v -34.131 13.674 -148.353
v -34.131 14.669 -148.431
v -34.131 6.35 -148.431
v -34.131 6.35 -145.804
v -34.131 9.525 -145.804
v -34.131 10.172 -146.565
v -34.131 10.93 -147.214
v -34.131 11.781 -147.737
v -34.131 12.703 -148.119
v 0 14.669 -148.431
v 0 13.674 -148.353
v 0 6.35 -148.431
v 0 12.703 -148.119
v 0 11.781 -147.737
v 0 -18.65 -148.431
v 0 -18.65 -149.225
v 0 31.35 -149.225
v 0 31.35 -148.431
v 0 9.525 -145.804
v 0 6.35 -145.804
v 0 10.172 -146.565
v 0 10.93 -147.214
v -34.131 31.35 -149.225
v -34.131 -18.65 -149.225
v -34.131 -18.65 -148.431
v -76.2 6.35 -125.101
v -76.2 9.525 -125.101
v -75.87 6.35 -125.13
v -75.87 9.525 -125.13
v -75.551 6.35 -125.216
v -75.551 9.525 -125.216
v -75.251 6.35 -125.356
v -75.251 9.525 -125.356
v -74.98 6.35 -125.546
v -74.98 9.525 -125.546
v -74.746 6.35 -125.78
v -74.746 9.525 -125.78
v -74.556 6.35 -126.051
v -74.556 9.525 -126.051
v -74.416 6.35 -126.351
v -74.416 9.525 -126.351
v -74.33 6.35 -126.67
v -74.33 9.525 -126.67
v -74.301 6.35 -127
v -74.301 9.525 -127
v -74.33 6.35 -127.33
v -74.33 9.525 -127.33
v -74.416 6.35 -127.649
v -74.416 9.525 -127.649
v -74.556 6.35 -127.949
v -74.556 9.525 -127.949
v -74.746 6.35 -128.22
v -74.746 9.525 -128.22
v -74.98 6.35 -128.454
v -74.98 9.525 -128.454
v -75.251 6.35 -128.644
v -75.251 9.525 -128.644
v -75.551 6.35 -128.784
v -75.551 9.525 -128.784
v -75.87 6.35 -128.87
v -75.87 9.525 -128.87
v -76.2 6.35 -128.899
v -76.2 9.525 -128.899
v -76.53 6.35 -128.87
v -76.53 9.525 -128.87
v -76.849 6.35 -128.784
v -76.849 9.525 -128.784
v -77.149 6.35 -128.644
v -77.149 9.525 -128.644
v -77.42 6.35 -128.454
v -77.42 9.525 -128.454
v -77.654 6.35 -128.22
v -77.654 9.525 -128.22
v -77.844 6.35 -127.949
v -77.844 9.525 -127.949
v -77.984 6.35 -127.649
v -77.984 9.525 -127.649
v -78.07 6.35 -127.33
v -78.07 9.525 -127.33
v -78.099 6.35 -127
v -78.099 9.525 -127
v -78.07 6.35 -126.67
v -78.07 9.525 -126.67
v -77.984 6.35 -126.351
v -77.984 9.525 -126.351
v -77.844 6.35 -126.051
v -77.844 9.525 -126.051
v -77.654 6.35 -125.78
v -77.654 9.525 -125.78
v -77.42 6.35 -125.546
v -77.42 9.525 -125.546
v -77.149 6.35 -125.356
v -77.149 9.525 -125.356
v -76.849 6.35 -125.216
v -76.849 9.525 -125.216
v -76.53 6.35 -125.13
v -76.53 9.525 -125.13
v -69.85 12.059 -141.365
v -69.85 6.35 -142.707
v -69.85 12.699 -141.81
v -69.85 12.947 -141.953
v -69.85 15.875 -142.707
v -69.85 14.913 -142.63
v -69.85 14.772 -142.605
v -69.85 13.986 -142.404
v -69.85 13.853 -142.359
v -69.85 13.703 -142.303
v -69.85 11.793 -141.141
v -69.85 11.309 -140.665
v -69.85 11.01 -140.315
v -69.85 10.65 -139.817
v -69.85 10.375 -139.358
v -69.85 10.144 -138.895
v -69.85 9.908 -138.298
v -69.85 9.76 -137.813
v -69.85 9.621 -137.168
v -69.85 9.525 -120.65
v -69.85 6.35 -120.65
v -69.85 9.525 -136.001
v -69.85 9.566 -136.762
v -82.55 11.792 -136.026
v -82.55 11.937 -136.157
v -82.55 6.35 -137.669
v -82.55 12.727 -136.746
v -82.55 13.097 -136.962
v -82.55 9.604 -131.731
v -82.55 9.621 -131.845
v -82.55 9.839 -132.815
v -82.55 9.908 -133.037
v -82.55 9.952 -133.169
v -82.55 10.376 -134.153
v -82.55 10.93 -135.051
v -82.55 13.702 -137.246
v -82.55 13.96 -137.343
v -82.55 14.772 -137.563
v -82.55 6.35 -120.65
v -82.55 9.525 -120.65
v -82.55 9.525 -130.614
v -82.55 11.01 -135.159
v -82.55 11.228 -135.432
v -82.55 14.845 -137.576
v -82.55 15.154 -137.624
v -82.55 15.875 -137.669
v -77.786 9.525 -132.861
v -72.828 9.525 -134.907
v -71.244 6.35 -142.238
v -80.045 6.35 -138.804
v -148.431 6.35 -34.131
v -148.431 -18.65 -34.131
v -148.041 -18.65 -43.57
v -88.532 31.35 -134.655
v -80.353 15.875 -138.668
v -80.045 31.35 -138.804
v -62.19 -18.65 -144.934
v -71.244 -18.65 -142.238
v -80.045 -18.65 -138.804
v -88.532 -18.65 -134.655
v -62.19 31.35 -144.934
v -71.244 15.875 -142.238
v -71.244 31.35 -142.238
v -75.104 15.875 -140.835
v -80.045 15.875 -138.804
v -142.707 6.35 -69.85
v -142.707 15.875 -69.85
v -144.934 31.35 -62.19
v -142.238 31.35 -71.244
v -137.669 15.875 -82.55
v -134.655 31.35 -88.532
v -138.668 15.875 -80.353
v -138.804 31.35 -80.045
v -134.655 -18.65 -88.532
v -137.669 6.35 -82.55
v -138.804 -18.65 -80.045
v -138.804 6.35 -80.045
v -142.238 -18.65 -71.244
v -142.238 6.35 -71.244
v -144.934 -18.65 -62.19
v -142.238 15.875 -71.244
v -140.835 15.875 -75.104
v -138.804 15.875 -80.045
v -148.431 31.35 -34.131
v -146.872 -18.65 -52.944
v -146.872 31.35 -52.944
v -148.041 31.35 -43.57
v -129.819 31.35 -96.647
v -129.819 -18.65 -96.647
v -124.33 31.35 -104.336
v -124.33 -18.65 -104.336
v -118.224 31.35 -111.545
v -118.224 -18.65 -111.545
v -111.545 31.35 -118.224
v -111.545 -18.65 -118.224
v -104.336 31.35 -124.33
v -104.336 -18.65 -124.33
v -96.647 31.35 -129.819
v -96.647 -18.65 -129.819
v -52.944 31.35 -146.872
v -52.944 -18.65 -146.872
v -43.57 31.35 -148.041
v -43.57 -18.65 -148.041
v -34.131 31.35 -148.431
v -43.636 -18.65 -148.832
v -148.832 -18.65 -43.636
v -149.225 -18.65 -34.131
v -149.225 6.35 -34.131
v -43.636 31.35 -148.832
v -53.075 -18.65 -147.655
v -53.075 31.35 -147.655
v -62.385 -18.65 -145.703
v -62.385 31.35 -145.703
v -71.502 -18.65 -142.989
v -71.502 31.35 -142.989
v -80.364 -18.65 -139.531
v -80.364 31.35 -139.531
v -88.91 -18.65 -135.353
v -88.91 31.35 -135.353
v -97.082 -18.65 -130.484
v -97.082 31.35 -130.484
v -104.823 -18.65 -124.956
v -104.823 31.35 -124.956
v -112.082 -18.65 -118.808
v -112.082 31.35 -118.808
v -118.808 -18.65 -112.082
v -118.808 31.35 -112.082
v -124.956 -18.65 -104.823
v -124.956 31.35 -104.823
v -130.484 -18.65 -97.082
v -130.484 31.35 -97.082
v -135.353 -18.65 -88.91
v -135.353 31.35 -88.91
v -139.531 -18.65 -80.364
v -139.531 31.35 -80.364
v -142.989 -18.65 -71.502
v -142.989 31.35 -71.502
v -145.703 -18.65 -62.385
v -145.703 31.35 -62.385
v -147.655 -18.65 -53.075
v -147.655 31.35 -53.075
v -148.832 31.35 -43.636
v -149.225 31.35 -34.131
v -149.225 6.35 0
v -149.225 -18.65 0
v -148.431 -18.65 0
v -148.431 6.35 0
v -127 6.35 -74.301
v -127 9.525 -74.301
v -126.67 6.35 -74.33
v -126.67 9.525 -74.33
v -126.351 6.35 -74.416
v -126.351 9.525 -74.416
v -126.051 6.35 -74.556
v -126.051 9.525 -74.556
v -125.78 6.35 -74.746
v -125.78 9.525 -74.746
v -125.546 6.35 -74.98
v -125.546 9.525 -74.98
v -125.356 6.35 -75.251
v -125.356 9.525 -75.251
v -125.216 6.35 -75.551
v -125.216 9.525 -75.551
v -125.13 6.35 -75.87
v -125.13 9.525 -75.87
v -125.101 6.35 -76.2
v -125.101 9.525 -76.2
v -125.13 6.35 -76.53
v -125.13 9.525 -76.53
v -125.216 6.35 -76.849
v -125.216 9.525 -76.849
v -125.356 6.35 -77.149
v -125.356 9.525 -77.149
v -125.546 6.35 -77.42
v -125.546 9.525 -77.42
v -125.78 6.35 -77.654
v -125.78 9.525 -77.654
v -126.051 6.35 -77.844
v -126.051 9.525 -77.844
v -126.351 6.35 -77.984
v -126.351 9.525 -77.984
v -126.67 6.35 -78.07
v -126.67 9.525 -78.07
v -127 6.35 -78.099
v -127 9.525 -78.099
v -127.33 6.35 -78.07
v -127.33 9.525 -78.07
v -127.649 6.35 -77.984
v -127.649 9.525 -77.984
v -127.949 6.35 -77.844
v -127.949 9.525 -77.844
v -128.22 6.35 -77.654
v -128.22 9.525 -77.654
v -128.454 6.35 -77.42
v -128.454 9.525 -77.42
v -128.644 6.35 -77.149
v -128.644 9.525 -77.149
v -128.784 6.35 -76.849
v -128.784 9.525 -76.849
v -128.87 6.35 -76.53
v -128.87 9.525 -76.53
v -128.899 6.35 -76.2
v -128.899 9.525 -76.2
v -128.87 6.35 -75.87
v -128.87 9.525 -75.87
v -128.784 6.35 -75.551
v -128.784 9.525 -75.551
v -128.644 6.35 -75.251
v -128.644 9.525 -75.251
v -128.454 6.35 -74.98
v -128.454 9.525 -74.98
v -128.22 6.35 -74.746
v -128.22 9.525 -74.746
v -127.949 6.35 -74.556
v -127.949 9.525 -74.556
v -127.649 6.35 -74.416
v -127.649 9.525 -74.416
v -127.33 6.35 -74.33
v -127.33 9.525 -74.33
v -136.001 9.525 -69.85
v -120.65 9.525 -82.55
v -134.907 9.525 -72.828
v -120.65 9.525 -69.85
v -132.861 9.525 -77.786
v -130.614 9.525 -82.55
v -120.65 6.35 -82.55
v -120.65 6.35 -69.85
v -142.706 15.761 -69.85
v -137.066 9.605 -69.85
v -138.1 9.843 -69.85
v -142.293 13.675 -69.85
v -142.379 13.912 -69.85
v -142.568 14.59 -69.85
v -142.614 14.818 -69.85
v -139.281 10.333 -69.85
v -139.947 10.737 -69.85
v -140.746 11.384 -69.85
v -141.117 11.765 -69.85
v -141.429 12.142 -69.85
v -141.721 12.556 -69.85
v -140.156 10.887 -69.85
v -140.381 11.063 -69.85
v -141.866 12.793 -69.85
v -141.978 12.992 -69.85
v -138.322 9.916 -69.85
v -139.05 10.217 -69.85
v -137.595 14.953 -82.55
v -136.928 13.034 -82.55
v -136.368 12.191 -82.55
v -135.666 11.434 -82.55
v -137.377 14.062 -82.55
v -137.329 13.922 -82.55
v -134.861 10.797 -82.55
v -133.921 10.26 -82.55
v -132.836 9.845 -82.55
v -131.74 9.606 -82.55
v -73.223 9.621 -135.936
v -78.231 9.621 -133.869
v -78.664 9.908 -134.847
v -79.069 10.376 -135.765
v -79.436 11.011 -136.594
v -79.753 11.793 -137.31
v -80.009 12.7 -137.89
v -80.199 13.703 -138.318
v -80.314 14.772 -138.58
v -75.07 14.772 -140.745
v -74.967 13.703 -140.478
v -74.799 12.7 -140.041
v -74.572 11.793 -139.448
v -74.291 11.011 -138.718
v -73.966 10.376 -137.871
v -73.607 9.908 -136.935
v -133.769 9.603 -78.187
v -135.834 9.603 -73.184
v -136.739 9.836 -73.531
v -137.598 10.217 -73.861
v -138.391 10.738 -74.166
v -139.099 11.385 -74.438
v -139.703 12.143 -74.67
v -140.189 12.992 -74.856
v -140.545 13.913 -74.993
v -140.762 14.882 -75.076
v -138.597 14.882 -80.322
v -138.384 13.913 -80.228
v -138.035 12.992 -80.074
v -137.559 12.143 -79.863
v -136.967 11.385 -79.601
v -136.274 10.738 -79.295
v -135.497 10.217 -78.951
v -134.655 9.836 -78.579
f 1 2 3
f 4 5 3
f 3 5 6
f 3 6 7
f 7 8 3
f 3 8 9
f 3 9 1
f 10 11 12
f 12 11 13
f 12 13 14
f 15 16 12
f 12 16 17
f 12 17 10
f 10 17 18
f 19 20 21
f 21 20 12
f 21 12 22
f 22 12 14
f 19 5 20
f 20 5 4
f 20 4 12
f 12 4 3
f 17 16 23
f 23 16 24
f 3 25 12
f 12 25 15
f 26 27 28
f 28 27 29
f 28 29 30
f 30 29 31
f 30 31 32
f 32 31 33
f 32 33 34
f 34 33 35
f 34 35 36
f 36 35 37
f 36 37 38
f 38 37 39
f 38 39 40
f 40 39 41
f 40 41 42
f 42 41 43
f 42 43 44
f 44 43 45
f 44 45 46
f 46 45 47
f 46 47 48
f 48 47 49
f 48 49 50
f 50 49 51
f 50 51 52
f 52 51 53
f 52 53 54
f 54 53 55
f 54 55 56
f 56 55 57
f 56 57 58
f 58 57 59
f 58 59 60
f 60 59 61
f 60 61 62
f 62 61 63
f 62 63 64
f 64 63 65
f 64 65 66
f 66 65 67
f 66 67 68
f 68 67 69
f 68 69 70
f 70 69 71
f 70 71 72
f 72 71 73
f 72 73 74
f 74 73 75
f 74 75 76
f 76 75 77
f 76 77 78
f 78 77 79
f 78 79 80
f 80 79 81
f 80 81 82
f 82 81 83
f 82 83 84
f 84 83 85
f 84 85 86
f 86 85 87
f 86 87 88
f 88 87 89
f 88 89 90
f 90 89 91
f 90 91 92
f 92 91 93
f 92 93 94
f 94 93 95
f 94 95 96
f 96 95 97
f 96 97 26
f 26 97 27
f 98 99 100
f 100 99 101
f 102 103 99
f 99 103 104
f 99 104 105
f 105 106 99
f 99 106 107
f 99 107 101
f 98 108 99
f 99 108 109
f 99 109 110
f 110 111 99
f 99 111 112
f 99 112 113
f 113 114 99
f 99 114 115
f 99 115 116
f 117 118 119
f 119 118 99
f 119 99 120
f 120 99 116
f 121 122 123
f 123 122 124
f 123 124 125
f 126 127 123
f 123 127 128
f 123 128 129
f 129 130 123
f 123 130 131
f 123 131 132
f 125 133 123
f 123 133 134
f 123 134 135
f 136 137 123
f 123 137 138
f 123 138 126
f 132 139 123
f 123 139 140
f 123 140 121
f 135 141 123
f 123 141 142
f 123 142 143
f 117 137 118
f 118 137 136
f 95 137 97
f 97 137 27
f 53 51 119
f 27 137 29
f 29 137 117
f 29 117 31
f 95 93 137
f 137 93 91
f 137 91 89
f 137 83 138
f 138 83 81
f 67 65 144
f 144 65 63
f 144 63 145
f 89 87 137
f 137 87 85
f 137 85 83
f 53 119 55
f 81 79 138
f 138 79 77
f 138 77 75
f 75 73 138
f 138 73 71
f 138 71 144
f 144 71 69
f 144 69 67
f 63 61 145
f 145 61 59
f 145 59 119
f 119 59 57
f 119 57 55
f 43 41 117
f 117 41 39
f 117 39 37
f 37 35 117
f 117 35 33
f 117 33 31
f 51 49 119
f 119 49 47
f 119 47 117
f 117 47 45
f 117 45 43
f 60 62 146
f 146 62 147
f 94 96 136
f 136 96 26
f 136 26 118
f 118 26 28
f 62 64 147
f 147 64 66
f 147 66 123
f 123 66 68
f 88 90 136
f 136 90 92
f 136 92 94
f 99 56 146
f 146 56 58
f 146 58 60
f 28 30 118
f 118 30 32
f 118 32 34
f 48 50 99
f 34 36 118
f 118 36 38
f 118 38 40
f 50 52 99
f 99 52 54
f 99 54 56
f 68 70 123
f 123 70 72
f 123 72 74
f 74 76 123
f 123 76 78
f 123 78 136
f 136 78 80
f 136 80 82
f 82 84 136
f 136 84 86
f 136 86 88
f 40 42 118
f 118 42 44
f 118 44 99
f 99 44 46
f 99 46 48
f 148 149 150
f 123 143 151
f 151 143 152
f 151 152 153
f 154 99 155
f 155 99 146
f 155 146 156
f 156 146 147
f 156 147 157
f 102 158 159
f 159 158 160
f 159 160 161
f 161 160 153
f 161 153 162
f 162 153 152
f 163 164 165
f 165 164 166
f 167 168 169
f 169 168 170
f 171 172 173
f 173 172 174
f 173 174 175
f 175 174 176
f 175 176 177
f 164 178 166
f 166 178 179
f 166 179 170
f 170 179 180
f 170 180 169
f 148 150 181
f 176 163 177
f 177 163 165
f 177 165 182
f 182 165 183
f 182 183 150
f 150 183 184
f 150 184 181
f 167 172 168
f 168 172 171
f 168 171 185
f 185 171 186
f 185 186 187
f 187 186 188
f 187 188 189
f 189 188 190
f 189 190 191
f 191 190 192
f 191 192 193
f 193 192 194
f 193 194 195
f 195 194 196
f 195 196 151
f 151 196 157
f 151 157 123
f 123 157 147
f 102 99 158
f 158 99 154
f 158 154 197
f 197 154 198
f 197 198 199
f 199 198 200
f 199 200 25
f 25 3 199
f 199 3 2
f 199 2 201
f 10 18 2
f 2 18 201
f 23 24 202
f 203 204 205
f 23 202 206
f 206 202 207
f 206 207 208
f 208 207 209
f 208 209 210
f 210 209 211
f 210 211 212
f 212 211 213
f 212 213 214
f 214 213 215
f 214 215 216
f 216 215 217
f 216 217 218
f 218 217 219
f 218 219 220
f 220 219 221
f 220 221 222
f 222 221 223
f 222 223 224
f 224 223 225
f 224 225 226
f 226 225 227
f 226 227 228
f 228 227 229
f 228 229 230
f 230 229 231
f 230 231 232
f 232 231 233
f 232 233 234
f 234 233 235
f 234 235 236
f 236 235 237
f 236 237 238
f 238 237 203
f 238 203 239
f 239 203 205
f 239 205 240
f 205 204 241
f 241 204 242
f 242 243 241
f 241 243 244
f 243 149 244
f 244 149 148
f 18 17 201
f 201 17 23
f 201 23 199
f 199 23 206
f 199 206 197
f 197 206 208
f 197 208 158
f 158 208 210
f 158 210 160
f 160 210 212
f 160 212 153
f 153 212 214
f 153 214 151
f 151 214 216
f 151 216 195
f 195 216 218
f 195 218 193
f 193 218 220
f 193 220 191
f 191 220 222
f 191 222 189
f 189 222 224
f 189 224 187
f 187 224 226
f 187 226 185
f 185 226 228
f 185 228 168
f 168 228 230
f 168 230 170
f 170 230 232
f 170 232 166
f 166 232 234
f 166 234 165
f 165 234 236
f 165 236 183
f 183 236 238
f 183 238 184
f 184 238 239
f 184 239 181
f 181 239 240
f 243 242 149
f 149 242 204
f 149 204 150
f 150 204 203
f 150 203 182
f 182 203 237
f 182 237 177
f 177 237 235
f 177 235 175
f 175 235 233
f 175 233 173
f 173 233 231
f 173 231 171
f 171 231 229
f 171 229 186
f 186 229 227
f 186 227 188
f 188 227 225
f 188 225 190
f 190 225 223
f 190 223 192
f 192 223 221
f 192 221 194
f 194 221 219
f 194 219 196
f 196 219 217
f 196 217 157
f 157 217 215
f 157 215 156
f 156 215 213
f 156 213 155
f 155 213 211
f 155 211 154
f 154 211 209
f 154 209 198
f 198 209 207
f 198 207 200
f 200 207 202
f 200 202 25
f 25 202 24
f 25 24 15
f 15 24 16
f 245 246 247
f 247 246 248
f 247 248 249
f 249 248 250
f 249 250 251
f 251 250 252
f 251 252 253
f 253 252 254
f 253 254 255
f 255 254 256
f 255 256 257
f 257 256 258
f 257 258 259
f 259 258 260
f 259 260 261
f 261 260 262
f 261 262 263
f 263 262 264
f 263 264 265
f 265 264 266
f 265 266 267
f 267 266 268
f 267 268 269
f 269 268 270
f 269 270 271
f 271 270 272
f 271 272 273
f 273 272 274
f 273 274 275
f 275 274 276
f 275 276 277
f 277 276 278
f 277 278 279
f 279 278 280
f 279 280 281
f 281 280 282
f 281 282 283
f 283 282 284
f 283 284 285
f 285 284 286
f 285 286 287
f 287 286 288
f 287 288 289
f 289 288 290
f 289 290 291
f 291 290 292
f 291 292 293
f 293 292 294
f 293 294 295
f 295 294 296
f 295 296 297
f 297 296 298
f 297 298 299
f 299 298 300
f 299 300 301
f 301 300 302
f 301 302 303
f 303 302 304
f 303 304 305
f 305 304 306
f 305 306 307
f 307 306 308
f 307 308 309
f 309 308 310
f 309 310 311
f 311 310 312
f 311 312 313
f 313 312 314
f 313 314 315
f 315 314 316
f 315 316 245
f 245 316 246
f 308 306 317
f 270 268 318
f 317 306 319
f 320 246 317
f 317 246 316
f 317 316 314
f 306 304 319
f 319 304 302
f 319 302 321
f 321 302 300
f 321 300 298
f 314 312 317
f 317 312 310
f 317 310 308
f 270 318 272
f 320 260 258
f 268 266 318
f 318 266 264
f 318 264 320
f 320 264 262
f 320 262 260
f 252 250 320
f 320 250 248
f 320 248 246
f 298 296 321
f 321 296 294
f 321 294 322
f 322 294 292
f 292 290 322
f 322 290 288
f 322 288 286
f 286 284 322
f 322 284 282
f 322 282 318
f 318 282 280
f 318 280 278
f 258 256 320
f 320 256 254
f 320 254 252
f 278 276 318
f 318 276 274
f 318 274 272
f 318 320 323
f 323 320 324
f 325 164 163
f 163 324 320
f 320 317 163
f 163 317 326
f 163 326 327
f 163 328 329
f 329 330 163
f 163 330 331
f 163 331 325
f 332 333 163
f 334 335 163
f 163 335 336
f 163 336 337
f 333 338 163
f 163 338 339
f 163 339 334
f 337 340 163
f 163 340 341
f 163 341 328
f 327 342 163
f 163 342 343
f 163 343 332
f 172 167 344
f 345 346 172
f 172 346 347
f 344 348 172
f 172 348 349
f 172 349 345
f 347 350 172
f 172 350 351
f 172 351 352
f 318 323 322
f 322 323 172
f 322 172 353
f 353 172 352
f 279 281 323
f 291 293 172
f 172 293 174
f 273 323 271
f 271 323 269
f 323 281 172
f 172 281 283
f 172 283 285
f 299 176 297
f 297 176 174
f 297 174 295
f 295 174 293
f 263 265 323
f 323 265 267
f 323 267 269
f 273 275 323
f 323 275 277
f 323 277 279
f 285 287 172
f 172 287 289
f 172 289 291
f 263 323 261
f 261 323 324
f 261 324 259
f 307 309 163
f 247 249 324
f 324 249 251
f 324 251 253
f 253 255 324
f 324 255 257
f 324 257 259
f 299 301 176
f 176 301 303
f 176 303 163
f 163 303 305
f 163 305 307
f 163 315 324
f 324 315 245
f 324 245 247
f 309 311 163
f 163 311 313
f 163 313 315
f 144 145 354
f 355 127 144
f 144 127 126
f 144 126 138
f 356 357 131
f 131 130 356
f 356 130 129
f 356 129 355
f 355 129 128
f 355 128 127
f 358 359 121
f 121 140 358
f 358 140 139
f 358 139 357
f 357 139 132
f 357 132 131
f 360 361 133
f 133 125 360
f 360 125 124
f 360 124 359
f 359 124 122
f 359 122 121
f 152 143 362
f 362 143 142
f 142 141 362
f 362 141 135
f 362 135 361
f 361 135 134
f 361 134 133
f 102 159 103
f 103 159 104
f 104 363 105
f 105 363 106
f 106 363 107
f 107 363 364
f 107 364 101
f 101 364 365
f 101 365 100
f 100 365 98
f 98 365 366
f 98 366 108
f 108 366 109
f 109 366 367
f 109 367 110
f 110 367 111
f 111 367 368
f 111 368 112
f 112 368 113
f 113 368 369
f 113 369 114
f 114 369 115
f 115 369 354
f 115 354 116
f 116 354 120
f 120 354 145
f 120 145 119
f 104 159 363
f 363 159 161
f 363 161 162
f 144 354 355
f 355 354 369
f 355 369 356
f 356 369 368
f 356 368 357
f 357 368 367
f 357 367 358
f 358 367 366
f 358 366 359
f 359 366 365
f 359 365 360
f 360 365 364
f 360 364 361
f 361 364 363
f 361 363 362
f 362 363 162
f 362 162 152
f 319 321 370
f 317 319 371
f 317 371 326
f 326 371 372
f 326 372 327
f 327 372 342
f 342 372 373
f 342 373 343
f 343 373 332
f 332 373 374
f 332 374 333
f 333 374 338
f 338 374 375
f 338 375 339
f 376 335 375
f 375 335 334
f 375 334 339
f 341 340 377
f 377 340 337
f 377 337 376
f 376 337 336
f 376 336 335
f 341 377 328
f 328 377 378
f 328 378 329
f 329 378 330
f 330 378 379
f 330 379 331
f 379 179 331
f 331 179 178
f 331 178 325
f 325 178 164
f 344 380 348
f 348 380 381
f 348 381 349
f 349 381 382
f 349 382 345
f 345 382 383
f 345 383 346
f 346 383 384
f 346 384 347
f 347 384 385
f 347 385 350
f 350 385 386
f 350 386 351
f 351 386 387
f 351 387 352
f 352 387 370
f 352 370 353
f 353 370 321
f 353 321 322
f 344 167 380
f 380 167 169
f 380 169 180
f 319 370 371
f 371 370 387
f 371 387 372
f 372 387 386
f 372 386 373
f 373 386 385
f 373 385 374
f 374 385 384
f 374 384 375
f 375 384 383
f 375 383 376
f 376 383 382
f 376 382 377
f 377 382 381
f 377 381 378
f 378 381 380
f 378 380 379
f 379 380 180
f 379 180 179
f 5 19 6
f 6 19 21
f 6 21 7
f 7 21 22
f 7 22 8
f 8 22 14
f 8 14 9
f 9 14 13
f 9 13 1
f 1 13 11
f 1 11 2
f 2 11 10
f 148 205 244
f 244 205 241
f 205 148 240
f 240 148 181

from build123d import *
from build123d.topology import SkipClean

# Parameters (mm, degrees)
BOSS_EXTRUDE1_DEPTH      = 6.35
CUT_EXTRUDE1_DEPTH       = 6.35
M4_CLEARANCE_HOLE1_D     = 4.5
F_6_CLEARANCE_HOLE1_D    = 3.7973
F_6_CLEARANCE_HOLE2_D    = 3.7973
SKETCH29_R               = 1.898650000000008
BOSS_EXTRUDE4_DEPTH      = 3.175
CUT_EXTRUDE9_DEPTH       = 211.00951038732748
BOSS_EXTRUDE5_DEPTH      = 25
BOSS_EXTRUDE5_DEPTH_BACK = 25
BOSS_EXTRUDE6_DEPTH      = 3.420518063
SKETCH32_W               = 34.13124999999999
SKETCH32_H               = 3.175
BOSS_EXTRUDE7_DEPTH      = 3.420518063
FILLET2_R                = 6.35
FILLET3_R                = 6.35
SKETCH33_W               = 62.65129797244943
SKETCH33_H               = 51.38023684891144
CUT_EXTRUDE10_DEPTH      = 211.97362412866636


with BuildPart() as part:
    # Sketch1 → Boss-Extrude1 (new body)
    with BuildSketch(Plane(origin=(0, 0, 0), x_dir=(1, 0, 0), z_dir=(0, 1, 0))):
        with BuildLine():
            Line((-34.13124999999996, -148.43124999999998), (34.131250000000016, -148.43124999999998))
            ThreePointArc((34.131250000000016, -148.43124999999998), (114.9535550896224, -114.95355508962234), (148.43124999999998, -34.13124999999996))
            Line((148.43124999999998, -34.13124999999996), (148.43124999999998, 34.131250000000016))
            ThreePointArc((148.43124999999998, 34.131250000000016), (114.9535550896224, 114.9535550896224), (34.131250000000016, 148.43125000000003))
            Line((34.131250000000016, 148.43125000000003), (-34.13124999999996, 148.43125000000003))
            ThreePointArc((-34.13124999999996, 148.43125000000003), (-114.95355508962231, 114.95355508962237), (-148.43124999999992, 34.131250000000016))
            Line((-148.43124999999992, 34.131250000000016), (-148.43124999999992, -34.13124999999996))
            ThreePointArc((-148.43124999999992, -34.13124999999996), (-114.95355508962234, -114.95355508962234), (-34.13124999999996, -148.43124999999998))
        make_face()
    extrude(amount=BOSS_EXTRUDE1_DEPTH)

    # Sketch4 → Cut-Extrude1 (cut)
    # profile 1 of 4: a face of its own
    with BuildSketch(Plane(origin=(0, 6.35, 0), x_dir=(1, 0, 0), z_dir=(0, 1, 0))):
        with BuildLine():
            ThreePointArc((-39.4480000000008, 145.80448193711538), (-49.893930566331434, 144.3300216659586), (-59.52363351317686, 140.0218527227403))
            ThreePointArc((-59.52363351317686, 140.0218527227403), (-63.81750000000949, 132.2535819370977), (-59.52363351317676, 124.48531115145514))
            ThreePointArc((-59.52363351317676, 124.48531115145514), (-49.89393056632884, 120.17714220824536), (-39.448000000000604, 118.70268193708908))
            Line((-39.448000000000604, 118.70268193708908), (39.44799999999939, 118.70268193708088))
            ThreePointArc((39.44799999999939, 118.70268193708088), (49.89393056633003, 120.17714220823765), (59.52363351317546, 124.48531115145597))
            ThreePointArc((59.52363351317546, 124.48531115145597), (63.817500000008096, 132.25358193709857), (59.523633513170694, 140.0218527227337))
            ThreePointArc((59.523633513170694, 140.0218527227337), (49.893930566325004, 144.3300216659425), (39.4479999999992, 145.80448193710717))
            Line((39.4479999999992, 145.80448193710717), (-39.4480000000008, 145.80448193711538))
        make_face()
        with BuildLine():
            ThreePointArc((39.447999999999375, 120.29018193708089), (49.454528647108134, 121.70261990502122), (58.67916380898574, 125.82956825808905))
            ThreePointArc((58.67916380898574, 125.82956825808905), (62.229999999999336, 132.25358193709857), (58.67916380898565, 138.67759561610805))
            ThreePointArc((58.67916380898565, 138.67759561610805), (49.45452864710313, 142.80454396915894), (39.447999999999205, 144.21698193711595))
            Line((39.447999999999205, 144.21698193711595), (-39.44800000000079, 144.21698193711538))
            ThreePointArc((-39.44800000000079, 144.21698193711538), (-49.454528647109534, 142.80454396917506), (-58.67916380898715, 138.67759561610723))
            ThreePointArc((-58.67916380898715, 138.67759561610723), (-62.23000000000073, 132.25358193709772), (-58.67916380898706, 125.82956825808822))
            ThreePointArc((-58.67916380898706, 125.82956825808822), (-49.454528647104546, 121.70261990503734), (-39.44800000000062, 120.29018193708033))
            Line((-39.44800000000062, 120.29018193708033), (39.447999999999375, 120.29018193708089))
        make_face(mode=Mode.SUBTRACT)
    # profile 2 of 4: a face of its own
    with BuildSketch(Plane(origin=(0, 6.35, 0), x_dir=(1, 0, 0), z_dir=(0, 1, 0))):
        with BuildLine():
            Line((-39.44800000000062, 120.29018193708033), (39.447999999999375, 120.29018193708089))
            ThreePointArc((39.447999999999375, 120.29018193708089), (49.454528647108134, 121.70261990502122), (58.67916380898574, 125.82956825808905))
            ThreePointArc((58.67916380898574, 125.82956825808905), (62.229999999999336, 132.25358193709857), (58.67916380898565, 138.67759561610805))
            ThreePointArc((58.67916380898565, 138.67759561610805), (49.45452864710313, 142.80454396915894), (39.447999999999205, 144.21698193711595))
            Line((39.447999999999205, 144.21698193711595), (-39.44800000000079, 144.21698193711538))
            ThreePointArc((-39.44800000000079, 144.21698193711538), (-49.454528647109534, 142.80454396917506), (-58.67916380898715, 138.67759561610723))
            ThreePointArc((-58.67916380898715, 138.67759561610723), (-62.23000000000073, 132.25358193709772), (-58.67916380898706, 125.82956825808822))
            ThreePointArc((-58.67916380898706, 125.82956825808822), (-49.454528647104546, 121.70261990503734), (-39.44800000000062, 120.29018193708033))
        make_face()
    # profile 3 of 4: a face of its own
    with BuildSketch(Plane(origin=(0, 6.35, 0), x_dir=(1, 0, 0), z_dir=(0, 1, 0))):
        with BuildLine():
            ThreePointArc((-59.5236335131764, -124.48531115145636), (-63.8175000000091, -132.25358193709894), (-59.52363351317174, -140.02185272273414))
            ThreePointArc((-59.52363351317174, -140.02185272273414), (-49.893930566326084, -144.33002166594298), (-39.44800000000029, -145.80448193711646))
            Line((-39.44800000000029, -145.80448193711646), (39.44799999999971, -145.80448193711646))
            ThreePointArc((39.44799999999971, -145.80448193711646), (49.89393056633035, -144.33002166595978), (59.52363351317579, -140.02185272274153))
            ThreePointArc((59.52363351317579, -140.02185272274153), (63.8175000000085, -132.25358193709894), (59.52363351317116, -124.48531115146376))
            ThreePointArc((59.52363351317116, -124.48531115146376), (49.89393056632551, -120.1771422082549), (39.44799999999971, -118.70268193709018))
            Line((39.44799999999971, -118.70268193709018), (-39.44800000000029, -118.70268193708142))
            ThreePointArc((-39.44800000000029, -118.70268193708142), (-49.89393056633094, -120.17714220823811), (-59.5236335131764, -124.48531115145636))
        make_face()
        with BuildLine():
            ThreePointArc((-58.679163808986694, -138.67759561610845), (-49.454528647104205, -142.8045439691594), (-39.44800000000029, -144.21698193711646))
            Line((-39.44800000000029, -144.21698193711646), (39.44799999999971, -144.21698193711646))
            ThreePointArc((39.44799999999971, -144.21698193711646), (49.45452864710846, -142.8045439691762), (58.679163808986104, -138.67759561610845))
            ThreePointArc((58.679163808986104, -138.67759561610845), (62.22999999999976, -132.25358193709894), (58.679163808986104, -125.82956825808944))
            ThreePointArc((58.679163808986104, -125.82956825808944), (49.45452864710362, -121.7026199050385), (39.44799999999971, -120.29018193708143))
            Line((39.44799999999971, -120.29018193708143), (-39.44800000000029, -120.29018193708143))
            ThreePointArc((-39.44800000000029, -120.29018193708143), (-49.45452864710904, -121.70261990502169), (-58.679163808986694, -125.82956825808944))
            ThreePointArc((-58.679163808986694, -125.82956825808944), (-62.230000000000345, -132.25358193709894), (-58.679163808986694, -138.67759561610845))
        make_face(mode=Mode.SUBTRACT)
    # profile 4 of 4: a face of its own
    with BuildSketch(Plane(origin=(0, 6.35, 0), x_dir=(1, 0, 0), z_dir=(0, 1, 0))):
        with BuildLine():
            ThreePointArc((-58.679163808986694, -125.82956825808944), (-62.230000000000345, -132.25358193709894), (-58.679163808986694, -138.67759561610845))
            ThreePointArc((-58.679163808986694, -138.67759561610845), (-49.454528647104205, -142.8045439691594), (-39.44800000000029, -144.21698193711646))
            Line((-39.44800000000029, -144.21698193711646), (39.44799999999971, -144.21698193711646))
            ThreePointArc((39.44799999999971, -144.21698193711646), (49.45452864710846, -142.8045439691762), (58.679163808986104, -138.67759561610845))
            ThreePointArc((58.679163808986104, -138.67759561610845), (62.22999999999976, -132.25358193709894), (58.679163808986104, -125.82956825808944))
            ThreePointArc((58.679163808986104, -125.82956825808944), (49.45452864710362, -121.7026199050385), (39.44799999999971, -120.29018193708143))
            Line((39.44799999999971, -120.29018193708143), (-39.44800000000029, -120.29018193708143))
            ThreePointArc((-39.44800000000029, -120.29018193708143), (-49.45452864710904, -121.70261990502169), (-58.679163808986694, -125.82956825808944))
        make_face()
    extrude(amount=-CUT_EXTRUDE1_DEPTH, mode=Mode.SUBTRACT)

    # M4 Clearance Hole1 (through all)
    with Locations(Plane(origin=(0, 6.35, 0), x_dir=(1, 0, 0), z_dir=(0, 1, 0))):
        with Locations((-16, -103.6875), (16, -103.6875), (22, -60.325), (-10, -60.325), (-10, 60.325), (22, 60.325), (16, 103.6875), (-16, 103.6875)):
            Hole(M4_CLEARANCE_HOLE1_D / 2)

    # #6 Clearance Hole1 (through all)
    with Locations(Plane(origin=(0, 6.35, 0), x_dir=(1, 0, 0), z_dir=(0, 1, 0))):
        with Locations((-101.6, -101.6), (-101.6, 101.6), (101.6, 101.6), (101.6, -101.6), (-127, -76.2), (-127, -50.8), (-127, 50.8), (-127, 76.2), (-101.6, 76.2), (-101.6, 50.8), (-101.6, 25.4), (-101.6, 0), (-101.6, -25.4), (-101.6, -50.8), (-101.6, -76.2), (-76.2, -101.6), (-50.8, -101.6), (-50.8, -76.2), (-76.2, -76.2), (-76.2, -50.8), (-50.8, -50.8), (-50.8, -25.4), (-76.2, -25.4), (-76.2, 0), (-50.8, 0), (-50.8, 25.4), (-76.2, 25.4), (-76.2, 50.8), (-50.8, 50.8), (-50.8, 76.2), (-76.2, 76.2), (-76.2, 101.6), (-50.8, 101.6), (50.8, -101.6), (76.2, -101.6), (101.6, -76.2), (127, -76.2), (127, -50.8), (101.6, -25.4), (101.6, -50.8), (76.2, -25.4), (76.2, -50.8), (76.2, -76.2), (50.8, -76.2), (50.8, -50.8), (50.8, -25.4), (50.8, 0), (76.2, 0), (101.6, 0), (101.6, 25.4), (101.6, 50.8), (101.6, 76.2), (127, 50.8), (127, 76.2), (76.2, 101.6), (50.8, 101.6), (50.8, 76.2), (76.2, 76.2), (76.2, 50.8), (76.2, 25.4), (50.8, 25.4), (50.8, 50.8), (0, 0), (-25.4, -25.4), (-25.4, 0), (-25.4, 25.4), (0, 25.4), (25.4, 25.4), (25.4, 0), (25.4, -25.4), (0, -25.4), (127, -25.4), (127, 0), (127, 25.4), (-127, -25.4), (-127, 0), (-127, 25.4)):
            Hole(F_6_CLEARANCE_HOLE1_D / 2)

    # #6 Clearance Hole2 (through all)
    with Locations(Plane(origin=(0, 6.35, 0), x_dir=(1, 0, 0), z_dir=(0, 1, 0))):
        with Locations((-76.2, -127), (76.2, -127), (76.2, 127), (-76.2, 127)):
            Hole(F_6_CLEARANCE_HOLE2_D / 2)

    # Sketch29 → Boss-Extrude4 (add)
    # profile 1 of 4: a face of its own
    with BuildSketch(Plane(origin=(0, 6.35, 0), x_dir=(1, 0, 0), z_dir=(0, 1, 0))):
        with BuildLine():
            Line((-69.85, 120.64999999999999), (-69.85, 142.70684992207043))
            ThreePointArc((-69.85, 142.70684992207043), (-76.27533753088031, 140.3779717667891), (-82.55, 137.66923649982286))
            Line((-82.55, 137.6692364998229), (-82.54999999999998, 120.64999999999999))
            Line((-82.54999999999998, 120.64999999999999), (-69.85, 120.64999999999999))
        make_face()
        with Locations(Location((-76.19999999999999, 127, 0), (0, 0, 270))):
            Circle(SKETCH29_R, mode=Mode.SUBTRACT)
    # profile 2 of 4: a face of its own
    with BuildSketch(Plane(origin=(0, 6.35, 0), x_dir=(1, 0, 0), z_dir=(0, 1, 0))):
        with BuildLine():
            Line((-120.6500000000006, 82.54999999999993), (-137.6692364998229, 82.54999999999993))
            ThreePointArc((-137.66923649982286, 82.5499999999999), (-140.37797176678907, 76.27533753088025), (-142.70684992207038, 69.84999999999994))
            Line((-142.70684992207043, 69.84999999999994), (-120.6500000000006, 69.84999999999994))
            Line((-120.6500000000006, 69.84999999999994), (-120.6500000000006, 82.54999999999993))
        make_face()
        with Locations(Location((-127.00000000000061, 76.19999999999993, 0), (0, 0, 270))):
            Circle(SKETCH29_R, mode=Mode.SUBTRACT)
    # profile 3 of 4: a face of its own
    with BuildSketch(Plane(origin=(0, 6.35, 0), x_dir=(1, 0, 0), z_dir=(0, 1, 0))):
        Polygon((-145.8044819371153, 34.13124999999998), (-145.8044819371153, 0), (-148.43124999999995, 2.082e-14), (-148.43124999999995, 34.131249999999994), align=None)
    # profile 4 of 4: a face of its own
    with BuildSketch(Plane(origin=(0, 6.35, 0), x_dir=(1, 0, 0), z_dir=(0, 1, 0))):
        Polygon((2.776e-14, 148.43125), (0, 145.80448193711538), (-34.13124999999999, 145.80448193711538), (-34.13124999999996, 148.43125000000003), align=None)
    extrude(amount=BOSS_EXTRUDE4_DEPTH)

    # Sketch30 → Cut-Extrude9 (cut, through all)
    with BuildSketch(Plane(origin=(0, 6.35, 0), x_dir=(1, 0, 0), z_dir=(0, 1, 0))):
        with BuildLine():
            Line((-34.13124999999998, -148.43124999999995), (34.131250000000016, -148.43124999999998))
            ThreePointArc((34.131250000000016, -148.43124999999998), (114.9535550896224, -114.95355508962234), (148.43125, -34.13124999999996))
            Line((148.43125, -34.13124999999996), (148.43124999999998, 34.131250000000016))
            ThreePointArc((148.43124999999998, 34.131250000000016), (114.95355508962237, 114.95355508962237), (34.13125000000002, 148.43125))
            Line((34.13125000000002, 148.43125), (-34.13124999999996, 148.43125000000003))
            ThreePointArc((-34.13124999999996, 148.43125000000003), (-114.95355508962234, 114.9535550896224), (-148.43124999999995, 34.13125000000003))
            Line((-148.43124999999995, 34.13125000000003), (-148.43124999999995, -34.131249999999945))
            ThreePointArc((-148.43124999999995, -34.131249999999945), (-114.95355508962234, -114.95355508962231), (-34.13124999999998, -148.43124999999995))
        make_face()
    extrude(amount=-CUT_EXTRUDE9_DEPTH, mode=Mode.SUBTRACT)


with BuildPart() as cut_extrude9_piece_1:
    # of the separate pieces the step leaves, piece 1, a body of its own (cut_extrude9_pieces)
    add(part.part.solids().sort_by_distance((-82.55, 6.35, -137.6692365))[0])



with BuildPart() as cut_extrude9_piece_2:
    # of the separate pieces the step leaves, piece 2, a body of its own (cut_extrude9_pieces)
    add(part.part.solids().sort_by_distance((-142.706849922, 6.35, -69.85))[0])


with BuildPart() as cut_extrude9_piece_3:
    # of the separate pieces the step leaves, piece 3, a body of its own (cut_extrude9_pieces)
    add(part.part.solids().sort_by_distance((-148.43125, 6.35, -34.13125))[0])


with BuildPart() as cut_extrude9_piece_4:
    # of the separate pieces the step leaves, piece 4, a body of its own (cut_extrude9_pieces)
    add(part.part.solids().sort_by_distance((-34.13125, 6.35, -145.804481937))[0])


with BuildPart() as cut_extrude9_piece_1_1:
    add(cut_extrude9_piece_1.part)

    add(cut_extrude9_piece_2.part)  # Boss-Extrude5 merges Cut-Extrude9 piece 2
    # Sketch29<7> → Boss-Extrude5 (add, two sides: drawn at the far end of the back side and taken through both)
    with BuildSketch(Plane(origin=(0, 6.35, 0), x_dir=(1, 0, 0), z_dir=(0, 1, 0)).offset(-BOSS_EXTRUDE5_DEPTH_BACK)):
        with BuildLine():
            ThreePointArc((-69.85, 142.70684992207043), (-52.21852354947877, 146.99107693388436), (-34.13124999999996, 148.43125000000003))
            Line((-34.13124999999996, 148.43125000000003), (2.842e-14, 148.43125))
            Line((2.776e-14, 148.43125), (2.776e-14, 149.22500000000002))
            Line((2.776e-14, 149.22500000000002), (-34.13124999999996, 149.22500000000002))
            ThreePointArc((-34.13124999999995, 149.22500000000002), (-115.51482109718914, 115.51482109718923), (-149.22499999999997, 34.13125000000003))
            Line((-149.22499999999997, 34.131249999999994), (-149.22499999999997, 2.132e-14))
            Line((-149.22499999999997, 2.082e-14), (-148.43124999999995, 2.082e-14))
            Line((-148.43124999999995, 2.132e-14), (-148.43124999999995, 34.131249999999994))
            ThreePointArc((-148.43124999999995, 34.13125000000001), (-146.9910769338843, 52.218523549478746), (-142.70684992207038, 69.84999999999994))
            ThreePointArc((-142.70684992207038, 69.84999999999994), (-140.37797176678907, 76.27533753088025), (-137.66923649982286, 82.5499999999999))
            ThreePointArc((-137.6692364998229, 82.54999999999994), (-114.9535550896224, 114.95355508962237), (-82.55000000000001, 137.66923649982292))
            ThreePointArc((-82.55, 137.66923649982286), (-76.27533753088031, 140.3779717667891), (-69.85, 142.70684992207043))
        make_face()
    extrude(amount=BOSS_EXTRUDE5_DEPTH + BOSS_EXTRUDE5_DEPTH_BACK)


    add(cut_extrude9_piece_3.part)  # Boss-Extrude6 merges Cut-Extrude9 piece 3
    # Sketch31 → Boss-Extrude6 (add)
    with BuildSketch(Plane(origin=(-145.8044819371153, 0, 0), x_dir=(0, 0, -1), z_dir=(1, 0, 0))):
        Polygon((1.15561e-12, 6.35), (34.13124999999998, 6.35), (34.13124999999998, 9.524999999999999), (1.15548e-12, 9.524999999999999), align=None)
    extrude(amount=-BOSS_EXTRUDE6_DEPTH)


    add(cut_extrude9_piece_4.part)  # Boss-Extrude7 merges Cut-Extrude9 piece 4
    # Sketch32 → Boss-Extrude7 (add)
    with BuildSketch(Plane.XY.offset(-145.80448193711126)):
        with Locations((-17.065625000015128, 7.937499999999998)):
            Rectangle(SKETCH32_W, SKETCH32_H)
    extrude(amount=-BOSS_EXTRUDE7_DEPTH)

    # Fillet2
    fillet2_edges = [cut_extrude9_piece_1_1.edges().sort_by_distance(p)[0] for p in [
        (-76.27533753088031, 9.524999999999999, -140.3779717667891),
        (-140.37797176678907, 9.524999999999999, -76.27533753088022),
    ]]
    fillet(fillet2_edges, radius=FILLET2_R)

    # Fillet3
    # the kernel refuses this fillet: 6.35 mm, written as the material it adds along each edge
    with BuildSketch(Plane(origin=(-34.13124999999996, 9.524999999999999, -148.43125000000003), x_dir=(0, 1, 0), z_dir=(1, 0, 8.3e-16))) as fillet3_piece_1:
        with BuildLine():
            CenterArc((5.143932731135228, 6.349999999999994), FILLET3_R, 215.89740993891724, 54.102590061082765)
            Line((0, 2.6267680628846506), (-0.10287865462270496, 2.5523034241423375))
            ThreePointArc((-0.10287865462270496, 2.5523034241423375), (-0.12700000000000067, 1.3133840314423253), (-0.12700000000000067, 0))
            Line((-0.12700000000000067, 0), (0, -0.12700000000000955))
            Line((0, -0.12700000000000955), (5.143932731135228, -0.12700000000000955))
            Line((5.143932731135228, -0.12700000000000955), (5.143932731135228, 0))
        make_face()
    extrude(amount=34.13124999999999)
    with BuildSketch(Plane(origin=(-148.43124999999995, 9.524999999999999, -2.082e-14), x_dir=(0, 1, 0), z_dir=(0, 0, -1))) as fillet3_piece_2:
        with BuildLine():
            CenterArc((5.143932731135228, 6.349999999999994), FILLET3_R, 215.89740993891724, 54.102590061082765)
            Line((0, 2.6267680628846506), (-0.10287865462270496, 2.5523034241423375))
            ThreePointArc((-0.10287865462270496, 2.5523034241423375), (-0.12700000000000067, 1.3133840314423253), (-0.12700000000000067, 0))
            Line((-0.12700000000000067, 0), (0, -0.12700000000000955))
            Line((0, -0.12700000000000955), (5.143932731135228, -0.12700000000000955))
            Line((5.143932731135228, -0.12700000000000955), (5.143932731135228, 0))
        make_face()
    extrude(amount=34.13124999999997)

    # Sketch33 → Cut-Extrude10 (cut, through all)
    with SkipClean():  # the faces are left unmerged after this step: merging them gives an invalid solid
        with BuildSketch(Plane(origin=(-145.8044819371153, 0, 0), x_dir=(0, 0, -1), z_dir=(1, 0, 0))):
            with Locations((2.8056010137752665, 32.04011842445572)):
                Rectangle(SKETCH33_W, SKETCH33_H)
        extrude(amount=-CUT_EXTRUDE10_DEPTH, mode=Mode.SUBTRACT)


solid = cut_extrude9_piece_1_1.part
